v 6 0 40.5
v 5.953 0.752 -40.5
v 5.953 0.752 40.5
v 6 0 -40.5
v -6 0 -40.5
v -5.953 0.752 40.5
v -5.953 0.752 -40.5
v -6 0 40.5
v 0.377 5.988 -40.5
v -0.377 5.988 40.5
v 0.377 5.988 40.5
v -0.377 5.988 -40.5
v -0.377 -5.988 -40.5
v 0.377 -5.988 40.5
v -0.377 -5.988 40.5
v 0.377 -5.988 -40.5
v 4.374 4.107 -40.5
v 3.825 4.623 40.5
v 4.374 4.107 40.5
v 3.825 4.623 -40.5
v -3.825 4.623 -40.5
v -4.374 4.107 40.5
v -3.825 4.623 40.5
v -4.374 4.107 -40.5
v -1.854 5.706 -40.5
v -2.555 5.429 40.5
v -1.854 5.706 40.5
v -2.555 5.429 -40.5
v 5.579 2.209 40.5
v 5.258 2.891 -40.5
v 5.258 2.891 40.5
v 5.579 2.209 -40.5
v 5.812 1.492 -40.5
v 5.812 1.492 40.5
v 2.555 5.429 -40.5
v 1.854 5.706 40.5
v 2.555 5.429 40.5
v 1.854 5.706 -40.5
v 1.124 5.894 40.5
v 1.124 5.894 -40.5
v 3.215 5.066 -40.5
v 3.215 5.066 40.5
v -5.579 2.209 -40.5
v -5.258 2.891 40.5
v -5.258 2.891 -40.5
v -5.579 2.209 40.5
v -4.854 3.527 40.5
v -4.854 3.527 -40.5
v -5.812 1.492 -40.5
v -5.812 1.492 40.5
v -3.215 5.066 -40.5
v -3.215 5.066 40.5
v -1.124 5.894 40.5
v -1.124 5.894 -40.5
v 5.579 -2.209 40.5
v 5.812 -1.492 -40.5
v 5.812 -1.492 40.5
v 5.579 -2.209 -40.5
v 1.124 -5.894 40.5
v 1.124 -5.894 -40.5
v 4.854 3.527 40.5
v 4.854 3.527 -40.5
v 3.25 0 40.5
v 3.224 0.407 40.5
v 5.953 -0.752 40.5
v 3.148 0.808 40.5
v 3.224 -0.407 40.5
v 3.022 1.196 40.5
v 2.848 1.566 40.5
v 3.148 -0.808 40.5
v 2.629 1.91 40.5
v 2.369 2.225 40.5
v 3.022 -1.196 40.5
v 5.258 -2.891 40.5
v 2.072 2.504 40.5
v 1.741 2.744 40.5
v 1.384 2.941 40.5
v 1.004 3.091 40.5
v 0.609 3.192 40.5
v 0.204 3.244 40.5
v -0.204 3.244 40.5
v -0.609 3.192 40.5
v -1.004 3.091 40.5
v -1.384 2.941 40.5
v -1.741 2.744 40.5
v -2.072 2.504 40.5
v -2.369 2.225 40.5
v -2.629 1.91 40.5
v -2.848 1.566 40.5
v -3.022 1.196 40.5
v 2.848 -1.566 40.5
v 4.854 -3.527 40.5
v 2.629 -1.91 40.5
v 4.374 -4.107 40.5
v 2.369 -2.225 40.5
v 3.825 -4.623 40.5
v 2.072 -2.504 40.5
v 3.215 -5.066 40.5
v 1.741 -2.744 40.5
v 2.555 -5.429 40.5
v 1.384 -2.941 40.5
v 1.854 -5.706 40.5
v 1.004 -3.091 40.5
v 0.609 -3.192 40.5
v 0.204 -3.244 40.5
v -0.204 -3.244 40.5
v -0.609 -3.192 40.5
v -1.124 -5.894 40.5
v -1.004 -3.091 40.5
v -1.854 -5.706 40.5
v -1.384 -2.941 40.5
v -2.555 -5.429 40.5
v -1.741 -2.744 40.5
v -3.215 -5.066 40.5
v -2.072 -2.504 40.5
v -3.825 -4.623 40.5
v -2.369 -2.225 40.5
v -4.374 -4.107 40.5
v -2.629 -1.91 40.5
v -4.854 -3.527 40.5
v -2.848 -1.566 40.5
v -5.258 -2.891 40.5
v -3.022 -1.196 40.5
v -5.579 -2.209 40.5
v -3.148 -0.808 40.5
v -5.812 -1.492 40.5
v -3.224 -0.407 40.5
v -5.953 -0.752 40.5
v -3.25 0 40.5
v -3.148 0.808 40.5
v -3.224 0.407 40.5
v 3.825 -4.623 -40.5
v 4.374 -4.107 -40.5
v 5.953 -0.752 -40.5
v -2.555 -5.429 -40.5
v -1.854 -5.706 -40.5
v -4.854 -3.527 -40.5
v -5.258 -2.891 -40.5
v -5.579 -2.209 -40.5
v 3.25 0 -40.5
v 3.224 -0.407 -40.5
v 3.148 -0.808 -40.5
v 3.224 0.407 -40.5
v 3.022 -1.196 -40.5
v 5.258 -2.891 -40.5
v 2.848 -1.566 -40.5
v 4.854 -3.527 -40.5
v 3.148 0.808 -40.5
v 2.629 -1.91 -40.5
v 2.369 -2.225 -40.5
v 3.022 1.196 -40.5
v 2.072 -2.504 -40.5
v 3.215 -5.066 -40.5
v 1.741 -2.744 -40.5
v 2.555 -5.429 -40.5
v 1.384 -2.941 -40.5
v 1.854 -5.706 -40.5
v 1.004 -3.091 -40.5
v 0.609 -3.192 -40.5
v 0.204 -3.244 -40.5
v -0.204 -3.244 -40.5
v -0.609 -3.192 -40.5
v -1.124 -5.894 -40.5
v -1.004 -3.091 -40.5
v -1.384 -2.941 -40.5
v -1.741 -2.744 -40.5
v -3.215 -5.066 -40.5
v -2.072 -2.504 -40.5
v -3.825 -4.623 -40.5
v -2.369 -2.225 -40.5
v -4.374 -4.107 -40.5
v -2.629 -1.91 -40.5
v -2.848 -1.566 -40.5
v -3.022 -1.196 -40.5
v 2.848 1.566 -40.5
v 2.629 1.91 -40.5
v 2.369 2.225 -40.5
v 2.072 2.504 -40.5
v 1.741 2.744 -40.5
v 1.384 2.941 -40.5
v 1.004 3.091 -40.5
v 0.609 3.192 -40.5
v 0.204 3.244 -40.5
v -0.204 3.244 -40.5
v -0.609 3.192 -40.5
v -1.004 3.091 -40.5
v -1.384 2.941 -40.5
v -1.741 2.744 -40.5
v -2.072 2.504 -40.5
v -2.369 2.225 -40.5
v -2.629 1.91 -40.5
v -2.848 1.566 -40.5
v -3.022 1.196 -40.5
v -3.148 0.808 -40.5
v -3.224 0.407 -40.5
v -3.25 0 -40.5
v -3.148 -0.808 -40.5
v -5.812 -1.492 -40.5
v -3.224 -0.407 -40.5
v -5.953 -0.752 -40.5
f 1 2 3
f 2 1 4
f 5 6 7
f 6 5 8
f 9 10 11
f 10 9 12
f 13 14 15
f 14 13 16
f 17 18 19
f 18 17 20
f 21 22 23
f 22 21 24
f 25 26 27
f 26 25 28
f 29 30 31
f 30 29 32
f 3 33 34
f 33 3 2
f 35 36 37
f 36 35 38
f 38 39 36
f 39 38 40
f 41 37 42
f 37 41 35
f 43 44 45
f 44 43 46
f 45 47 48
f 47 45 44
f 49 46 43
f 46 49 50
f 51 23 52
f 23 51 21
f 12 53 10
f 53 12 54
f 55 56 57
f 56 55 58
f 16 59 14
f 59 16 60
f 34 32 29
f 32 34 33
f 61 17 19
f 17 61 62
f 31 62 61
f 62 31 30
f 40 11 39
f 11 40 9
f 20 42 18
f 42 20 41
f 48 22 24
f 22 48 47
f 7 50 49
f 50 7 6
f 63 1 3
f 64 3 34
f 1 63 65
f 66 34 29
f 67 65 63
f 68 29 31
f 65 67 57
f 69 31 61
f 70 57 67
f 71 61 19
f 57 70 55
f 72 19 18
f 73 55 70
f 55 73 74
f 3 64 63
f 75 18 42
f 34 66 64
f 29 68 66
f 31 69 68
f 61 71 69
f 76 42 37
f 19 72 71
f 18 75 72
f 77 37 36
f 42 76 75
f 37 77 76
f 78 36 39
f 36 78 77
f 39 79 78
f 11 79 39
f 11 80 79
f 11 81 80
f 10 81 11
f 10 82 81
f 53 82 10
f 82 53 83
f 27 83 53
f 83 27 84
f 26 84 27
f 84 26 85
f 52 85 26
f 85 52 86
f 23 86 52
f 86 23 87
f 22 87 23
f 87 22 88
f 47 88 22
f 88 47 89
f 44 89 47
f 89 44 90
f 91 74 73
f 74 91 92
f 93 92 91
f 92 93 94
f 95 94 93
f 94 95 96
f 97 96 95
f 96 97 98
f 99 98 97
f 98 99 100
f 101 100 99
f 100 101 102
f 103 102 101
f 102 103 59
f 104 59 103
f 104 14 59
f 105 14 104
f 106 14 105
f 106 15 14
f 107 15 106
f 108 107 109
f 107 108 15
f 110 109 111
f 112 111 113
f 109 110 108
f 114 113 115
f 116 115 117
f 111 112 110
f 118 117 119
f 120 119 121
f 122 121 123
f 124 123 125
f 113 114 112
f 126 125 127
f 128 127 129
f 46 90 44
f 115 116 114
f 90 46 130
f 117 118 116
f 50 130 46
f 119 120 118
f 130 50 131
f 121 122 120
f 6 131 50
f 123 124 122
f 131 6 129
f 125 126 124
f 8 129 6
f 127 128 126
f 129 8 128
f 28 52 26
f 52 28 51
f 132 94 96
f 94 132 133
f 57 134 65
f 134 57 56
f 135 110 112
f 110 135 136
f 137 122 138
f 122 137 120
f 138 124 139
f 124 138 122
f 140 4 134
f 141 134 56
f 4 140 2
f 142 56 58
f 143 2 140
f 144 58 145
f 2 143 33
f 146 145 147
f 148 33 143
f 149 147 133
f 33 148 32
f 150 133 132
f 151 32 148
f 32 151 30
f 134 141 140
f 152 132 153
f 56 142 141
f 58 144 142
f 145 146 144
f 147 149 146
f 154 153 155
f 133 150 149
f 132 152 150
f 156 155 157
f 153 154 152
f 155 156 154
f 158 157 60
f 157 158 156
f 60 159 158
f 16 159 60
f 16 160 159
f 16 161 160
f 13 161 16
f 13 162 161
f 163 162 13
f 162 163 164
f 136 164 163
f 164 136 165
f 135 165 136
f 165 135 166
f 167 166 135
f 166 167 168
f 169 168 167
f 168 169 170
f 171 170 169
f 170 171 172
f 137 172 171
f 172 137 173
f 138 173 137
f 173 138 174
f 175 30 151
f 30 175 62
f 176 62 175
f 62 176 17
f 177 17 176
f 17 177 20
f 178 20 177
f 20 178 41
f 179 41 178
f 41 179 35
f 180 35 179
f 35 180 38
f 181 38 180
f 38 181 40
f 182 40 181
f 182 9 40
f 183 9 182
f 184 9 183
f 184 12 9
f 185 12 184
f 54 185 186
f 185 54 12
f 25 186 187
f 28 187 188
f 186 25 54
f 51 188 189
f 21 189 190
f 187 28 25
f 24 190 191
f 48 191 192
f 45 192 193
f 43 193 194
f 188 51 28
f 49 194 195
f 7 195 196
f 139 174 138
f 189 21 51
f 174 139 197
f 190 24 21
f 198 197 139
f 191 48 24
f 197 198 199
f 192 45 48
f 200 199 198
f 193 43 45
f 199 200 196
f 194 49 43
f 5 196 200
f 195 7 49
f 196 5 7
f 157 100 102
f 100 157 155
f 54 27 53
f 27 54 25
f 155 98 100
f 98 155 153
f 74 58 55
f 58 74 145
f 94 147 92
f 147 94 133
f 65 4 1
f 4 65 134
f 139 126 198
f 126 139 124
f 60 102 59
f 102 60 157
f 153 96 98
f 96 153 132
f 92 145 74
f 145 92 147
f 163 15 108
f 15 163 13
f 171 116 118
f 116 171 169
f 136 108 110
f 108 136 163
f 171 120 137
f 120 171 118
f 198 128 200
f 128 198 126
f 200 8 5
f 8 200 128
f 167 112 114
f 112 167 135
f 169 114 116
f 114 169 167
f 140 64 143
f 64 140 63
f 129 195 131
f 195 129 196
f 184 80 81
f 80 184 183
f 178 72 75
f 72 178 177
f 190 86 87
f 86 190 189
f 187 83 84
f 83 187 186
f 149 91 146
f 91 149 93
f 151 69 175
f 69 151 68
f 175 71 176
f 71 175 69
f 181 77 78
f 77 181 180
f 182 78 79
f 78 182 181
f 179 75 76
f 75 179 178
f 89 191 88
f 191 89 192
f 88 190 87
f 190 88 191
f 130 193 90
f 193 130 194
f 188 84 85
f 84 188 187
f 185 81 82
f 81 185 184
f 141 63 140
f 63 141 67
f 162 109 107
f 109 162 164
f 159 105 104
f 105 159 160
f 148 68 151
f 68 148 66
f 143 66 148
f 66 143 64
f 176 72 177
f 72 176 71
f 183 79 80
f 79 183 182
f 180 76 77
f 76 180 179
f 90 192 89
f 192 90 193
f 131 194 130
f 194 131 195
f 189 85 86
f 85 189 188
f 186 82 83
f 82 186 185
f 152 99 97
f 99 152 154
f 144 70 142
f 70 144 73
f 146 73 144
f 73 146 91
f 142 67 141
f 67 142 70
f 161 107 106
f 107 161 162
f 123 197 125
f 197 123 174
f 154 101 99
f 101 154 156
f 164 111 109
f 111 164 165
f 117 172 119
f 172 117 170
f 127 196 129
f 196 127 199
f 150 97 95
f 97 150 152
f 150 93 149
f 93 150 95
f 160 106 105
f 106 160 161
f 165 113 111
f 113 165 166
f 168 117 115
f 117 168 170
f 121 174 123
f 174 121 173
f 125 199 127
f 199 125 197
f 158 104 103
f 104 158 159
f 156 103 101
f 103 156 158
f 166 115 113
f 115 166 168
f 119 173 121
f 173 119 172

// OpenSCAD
$fn = 50;


difference() {
	union() {
		translate(v = [0, 0, -40.5000000000]) {
			cylinder(h = 81, r = 6.0000000000);
		}
	}
	union() {
		translate(v = [0, 0, -100.0000000000]) {
			cylinder(h = 200, r = 3.2500000000);
		}
	}
}
